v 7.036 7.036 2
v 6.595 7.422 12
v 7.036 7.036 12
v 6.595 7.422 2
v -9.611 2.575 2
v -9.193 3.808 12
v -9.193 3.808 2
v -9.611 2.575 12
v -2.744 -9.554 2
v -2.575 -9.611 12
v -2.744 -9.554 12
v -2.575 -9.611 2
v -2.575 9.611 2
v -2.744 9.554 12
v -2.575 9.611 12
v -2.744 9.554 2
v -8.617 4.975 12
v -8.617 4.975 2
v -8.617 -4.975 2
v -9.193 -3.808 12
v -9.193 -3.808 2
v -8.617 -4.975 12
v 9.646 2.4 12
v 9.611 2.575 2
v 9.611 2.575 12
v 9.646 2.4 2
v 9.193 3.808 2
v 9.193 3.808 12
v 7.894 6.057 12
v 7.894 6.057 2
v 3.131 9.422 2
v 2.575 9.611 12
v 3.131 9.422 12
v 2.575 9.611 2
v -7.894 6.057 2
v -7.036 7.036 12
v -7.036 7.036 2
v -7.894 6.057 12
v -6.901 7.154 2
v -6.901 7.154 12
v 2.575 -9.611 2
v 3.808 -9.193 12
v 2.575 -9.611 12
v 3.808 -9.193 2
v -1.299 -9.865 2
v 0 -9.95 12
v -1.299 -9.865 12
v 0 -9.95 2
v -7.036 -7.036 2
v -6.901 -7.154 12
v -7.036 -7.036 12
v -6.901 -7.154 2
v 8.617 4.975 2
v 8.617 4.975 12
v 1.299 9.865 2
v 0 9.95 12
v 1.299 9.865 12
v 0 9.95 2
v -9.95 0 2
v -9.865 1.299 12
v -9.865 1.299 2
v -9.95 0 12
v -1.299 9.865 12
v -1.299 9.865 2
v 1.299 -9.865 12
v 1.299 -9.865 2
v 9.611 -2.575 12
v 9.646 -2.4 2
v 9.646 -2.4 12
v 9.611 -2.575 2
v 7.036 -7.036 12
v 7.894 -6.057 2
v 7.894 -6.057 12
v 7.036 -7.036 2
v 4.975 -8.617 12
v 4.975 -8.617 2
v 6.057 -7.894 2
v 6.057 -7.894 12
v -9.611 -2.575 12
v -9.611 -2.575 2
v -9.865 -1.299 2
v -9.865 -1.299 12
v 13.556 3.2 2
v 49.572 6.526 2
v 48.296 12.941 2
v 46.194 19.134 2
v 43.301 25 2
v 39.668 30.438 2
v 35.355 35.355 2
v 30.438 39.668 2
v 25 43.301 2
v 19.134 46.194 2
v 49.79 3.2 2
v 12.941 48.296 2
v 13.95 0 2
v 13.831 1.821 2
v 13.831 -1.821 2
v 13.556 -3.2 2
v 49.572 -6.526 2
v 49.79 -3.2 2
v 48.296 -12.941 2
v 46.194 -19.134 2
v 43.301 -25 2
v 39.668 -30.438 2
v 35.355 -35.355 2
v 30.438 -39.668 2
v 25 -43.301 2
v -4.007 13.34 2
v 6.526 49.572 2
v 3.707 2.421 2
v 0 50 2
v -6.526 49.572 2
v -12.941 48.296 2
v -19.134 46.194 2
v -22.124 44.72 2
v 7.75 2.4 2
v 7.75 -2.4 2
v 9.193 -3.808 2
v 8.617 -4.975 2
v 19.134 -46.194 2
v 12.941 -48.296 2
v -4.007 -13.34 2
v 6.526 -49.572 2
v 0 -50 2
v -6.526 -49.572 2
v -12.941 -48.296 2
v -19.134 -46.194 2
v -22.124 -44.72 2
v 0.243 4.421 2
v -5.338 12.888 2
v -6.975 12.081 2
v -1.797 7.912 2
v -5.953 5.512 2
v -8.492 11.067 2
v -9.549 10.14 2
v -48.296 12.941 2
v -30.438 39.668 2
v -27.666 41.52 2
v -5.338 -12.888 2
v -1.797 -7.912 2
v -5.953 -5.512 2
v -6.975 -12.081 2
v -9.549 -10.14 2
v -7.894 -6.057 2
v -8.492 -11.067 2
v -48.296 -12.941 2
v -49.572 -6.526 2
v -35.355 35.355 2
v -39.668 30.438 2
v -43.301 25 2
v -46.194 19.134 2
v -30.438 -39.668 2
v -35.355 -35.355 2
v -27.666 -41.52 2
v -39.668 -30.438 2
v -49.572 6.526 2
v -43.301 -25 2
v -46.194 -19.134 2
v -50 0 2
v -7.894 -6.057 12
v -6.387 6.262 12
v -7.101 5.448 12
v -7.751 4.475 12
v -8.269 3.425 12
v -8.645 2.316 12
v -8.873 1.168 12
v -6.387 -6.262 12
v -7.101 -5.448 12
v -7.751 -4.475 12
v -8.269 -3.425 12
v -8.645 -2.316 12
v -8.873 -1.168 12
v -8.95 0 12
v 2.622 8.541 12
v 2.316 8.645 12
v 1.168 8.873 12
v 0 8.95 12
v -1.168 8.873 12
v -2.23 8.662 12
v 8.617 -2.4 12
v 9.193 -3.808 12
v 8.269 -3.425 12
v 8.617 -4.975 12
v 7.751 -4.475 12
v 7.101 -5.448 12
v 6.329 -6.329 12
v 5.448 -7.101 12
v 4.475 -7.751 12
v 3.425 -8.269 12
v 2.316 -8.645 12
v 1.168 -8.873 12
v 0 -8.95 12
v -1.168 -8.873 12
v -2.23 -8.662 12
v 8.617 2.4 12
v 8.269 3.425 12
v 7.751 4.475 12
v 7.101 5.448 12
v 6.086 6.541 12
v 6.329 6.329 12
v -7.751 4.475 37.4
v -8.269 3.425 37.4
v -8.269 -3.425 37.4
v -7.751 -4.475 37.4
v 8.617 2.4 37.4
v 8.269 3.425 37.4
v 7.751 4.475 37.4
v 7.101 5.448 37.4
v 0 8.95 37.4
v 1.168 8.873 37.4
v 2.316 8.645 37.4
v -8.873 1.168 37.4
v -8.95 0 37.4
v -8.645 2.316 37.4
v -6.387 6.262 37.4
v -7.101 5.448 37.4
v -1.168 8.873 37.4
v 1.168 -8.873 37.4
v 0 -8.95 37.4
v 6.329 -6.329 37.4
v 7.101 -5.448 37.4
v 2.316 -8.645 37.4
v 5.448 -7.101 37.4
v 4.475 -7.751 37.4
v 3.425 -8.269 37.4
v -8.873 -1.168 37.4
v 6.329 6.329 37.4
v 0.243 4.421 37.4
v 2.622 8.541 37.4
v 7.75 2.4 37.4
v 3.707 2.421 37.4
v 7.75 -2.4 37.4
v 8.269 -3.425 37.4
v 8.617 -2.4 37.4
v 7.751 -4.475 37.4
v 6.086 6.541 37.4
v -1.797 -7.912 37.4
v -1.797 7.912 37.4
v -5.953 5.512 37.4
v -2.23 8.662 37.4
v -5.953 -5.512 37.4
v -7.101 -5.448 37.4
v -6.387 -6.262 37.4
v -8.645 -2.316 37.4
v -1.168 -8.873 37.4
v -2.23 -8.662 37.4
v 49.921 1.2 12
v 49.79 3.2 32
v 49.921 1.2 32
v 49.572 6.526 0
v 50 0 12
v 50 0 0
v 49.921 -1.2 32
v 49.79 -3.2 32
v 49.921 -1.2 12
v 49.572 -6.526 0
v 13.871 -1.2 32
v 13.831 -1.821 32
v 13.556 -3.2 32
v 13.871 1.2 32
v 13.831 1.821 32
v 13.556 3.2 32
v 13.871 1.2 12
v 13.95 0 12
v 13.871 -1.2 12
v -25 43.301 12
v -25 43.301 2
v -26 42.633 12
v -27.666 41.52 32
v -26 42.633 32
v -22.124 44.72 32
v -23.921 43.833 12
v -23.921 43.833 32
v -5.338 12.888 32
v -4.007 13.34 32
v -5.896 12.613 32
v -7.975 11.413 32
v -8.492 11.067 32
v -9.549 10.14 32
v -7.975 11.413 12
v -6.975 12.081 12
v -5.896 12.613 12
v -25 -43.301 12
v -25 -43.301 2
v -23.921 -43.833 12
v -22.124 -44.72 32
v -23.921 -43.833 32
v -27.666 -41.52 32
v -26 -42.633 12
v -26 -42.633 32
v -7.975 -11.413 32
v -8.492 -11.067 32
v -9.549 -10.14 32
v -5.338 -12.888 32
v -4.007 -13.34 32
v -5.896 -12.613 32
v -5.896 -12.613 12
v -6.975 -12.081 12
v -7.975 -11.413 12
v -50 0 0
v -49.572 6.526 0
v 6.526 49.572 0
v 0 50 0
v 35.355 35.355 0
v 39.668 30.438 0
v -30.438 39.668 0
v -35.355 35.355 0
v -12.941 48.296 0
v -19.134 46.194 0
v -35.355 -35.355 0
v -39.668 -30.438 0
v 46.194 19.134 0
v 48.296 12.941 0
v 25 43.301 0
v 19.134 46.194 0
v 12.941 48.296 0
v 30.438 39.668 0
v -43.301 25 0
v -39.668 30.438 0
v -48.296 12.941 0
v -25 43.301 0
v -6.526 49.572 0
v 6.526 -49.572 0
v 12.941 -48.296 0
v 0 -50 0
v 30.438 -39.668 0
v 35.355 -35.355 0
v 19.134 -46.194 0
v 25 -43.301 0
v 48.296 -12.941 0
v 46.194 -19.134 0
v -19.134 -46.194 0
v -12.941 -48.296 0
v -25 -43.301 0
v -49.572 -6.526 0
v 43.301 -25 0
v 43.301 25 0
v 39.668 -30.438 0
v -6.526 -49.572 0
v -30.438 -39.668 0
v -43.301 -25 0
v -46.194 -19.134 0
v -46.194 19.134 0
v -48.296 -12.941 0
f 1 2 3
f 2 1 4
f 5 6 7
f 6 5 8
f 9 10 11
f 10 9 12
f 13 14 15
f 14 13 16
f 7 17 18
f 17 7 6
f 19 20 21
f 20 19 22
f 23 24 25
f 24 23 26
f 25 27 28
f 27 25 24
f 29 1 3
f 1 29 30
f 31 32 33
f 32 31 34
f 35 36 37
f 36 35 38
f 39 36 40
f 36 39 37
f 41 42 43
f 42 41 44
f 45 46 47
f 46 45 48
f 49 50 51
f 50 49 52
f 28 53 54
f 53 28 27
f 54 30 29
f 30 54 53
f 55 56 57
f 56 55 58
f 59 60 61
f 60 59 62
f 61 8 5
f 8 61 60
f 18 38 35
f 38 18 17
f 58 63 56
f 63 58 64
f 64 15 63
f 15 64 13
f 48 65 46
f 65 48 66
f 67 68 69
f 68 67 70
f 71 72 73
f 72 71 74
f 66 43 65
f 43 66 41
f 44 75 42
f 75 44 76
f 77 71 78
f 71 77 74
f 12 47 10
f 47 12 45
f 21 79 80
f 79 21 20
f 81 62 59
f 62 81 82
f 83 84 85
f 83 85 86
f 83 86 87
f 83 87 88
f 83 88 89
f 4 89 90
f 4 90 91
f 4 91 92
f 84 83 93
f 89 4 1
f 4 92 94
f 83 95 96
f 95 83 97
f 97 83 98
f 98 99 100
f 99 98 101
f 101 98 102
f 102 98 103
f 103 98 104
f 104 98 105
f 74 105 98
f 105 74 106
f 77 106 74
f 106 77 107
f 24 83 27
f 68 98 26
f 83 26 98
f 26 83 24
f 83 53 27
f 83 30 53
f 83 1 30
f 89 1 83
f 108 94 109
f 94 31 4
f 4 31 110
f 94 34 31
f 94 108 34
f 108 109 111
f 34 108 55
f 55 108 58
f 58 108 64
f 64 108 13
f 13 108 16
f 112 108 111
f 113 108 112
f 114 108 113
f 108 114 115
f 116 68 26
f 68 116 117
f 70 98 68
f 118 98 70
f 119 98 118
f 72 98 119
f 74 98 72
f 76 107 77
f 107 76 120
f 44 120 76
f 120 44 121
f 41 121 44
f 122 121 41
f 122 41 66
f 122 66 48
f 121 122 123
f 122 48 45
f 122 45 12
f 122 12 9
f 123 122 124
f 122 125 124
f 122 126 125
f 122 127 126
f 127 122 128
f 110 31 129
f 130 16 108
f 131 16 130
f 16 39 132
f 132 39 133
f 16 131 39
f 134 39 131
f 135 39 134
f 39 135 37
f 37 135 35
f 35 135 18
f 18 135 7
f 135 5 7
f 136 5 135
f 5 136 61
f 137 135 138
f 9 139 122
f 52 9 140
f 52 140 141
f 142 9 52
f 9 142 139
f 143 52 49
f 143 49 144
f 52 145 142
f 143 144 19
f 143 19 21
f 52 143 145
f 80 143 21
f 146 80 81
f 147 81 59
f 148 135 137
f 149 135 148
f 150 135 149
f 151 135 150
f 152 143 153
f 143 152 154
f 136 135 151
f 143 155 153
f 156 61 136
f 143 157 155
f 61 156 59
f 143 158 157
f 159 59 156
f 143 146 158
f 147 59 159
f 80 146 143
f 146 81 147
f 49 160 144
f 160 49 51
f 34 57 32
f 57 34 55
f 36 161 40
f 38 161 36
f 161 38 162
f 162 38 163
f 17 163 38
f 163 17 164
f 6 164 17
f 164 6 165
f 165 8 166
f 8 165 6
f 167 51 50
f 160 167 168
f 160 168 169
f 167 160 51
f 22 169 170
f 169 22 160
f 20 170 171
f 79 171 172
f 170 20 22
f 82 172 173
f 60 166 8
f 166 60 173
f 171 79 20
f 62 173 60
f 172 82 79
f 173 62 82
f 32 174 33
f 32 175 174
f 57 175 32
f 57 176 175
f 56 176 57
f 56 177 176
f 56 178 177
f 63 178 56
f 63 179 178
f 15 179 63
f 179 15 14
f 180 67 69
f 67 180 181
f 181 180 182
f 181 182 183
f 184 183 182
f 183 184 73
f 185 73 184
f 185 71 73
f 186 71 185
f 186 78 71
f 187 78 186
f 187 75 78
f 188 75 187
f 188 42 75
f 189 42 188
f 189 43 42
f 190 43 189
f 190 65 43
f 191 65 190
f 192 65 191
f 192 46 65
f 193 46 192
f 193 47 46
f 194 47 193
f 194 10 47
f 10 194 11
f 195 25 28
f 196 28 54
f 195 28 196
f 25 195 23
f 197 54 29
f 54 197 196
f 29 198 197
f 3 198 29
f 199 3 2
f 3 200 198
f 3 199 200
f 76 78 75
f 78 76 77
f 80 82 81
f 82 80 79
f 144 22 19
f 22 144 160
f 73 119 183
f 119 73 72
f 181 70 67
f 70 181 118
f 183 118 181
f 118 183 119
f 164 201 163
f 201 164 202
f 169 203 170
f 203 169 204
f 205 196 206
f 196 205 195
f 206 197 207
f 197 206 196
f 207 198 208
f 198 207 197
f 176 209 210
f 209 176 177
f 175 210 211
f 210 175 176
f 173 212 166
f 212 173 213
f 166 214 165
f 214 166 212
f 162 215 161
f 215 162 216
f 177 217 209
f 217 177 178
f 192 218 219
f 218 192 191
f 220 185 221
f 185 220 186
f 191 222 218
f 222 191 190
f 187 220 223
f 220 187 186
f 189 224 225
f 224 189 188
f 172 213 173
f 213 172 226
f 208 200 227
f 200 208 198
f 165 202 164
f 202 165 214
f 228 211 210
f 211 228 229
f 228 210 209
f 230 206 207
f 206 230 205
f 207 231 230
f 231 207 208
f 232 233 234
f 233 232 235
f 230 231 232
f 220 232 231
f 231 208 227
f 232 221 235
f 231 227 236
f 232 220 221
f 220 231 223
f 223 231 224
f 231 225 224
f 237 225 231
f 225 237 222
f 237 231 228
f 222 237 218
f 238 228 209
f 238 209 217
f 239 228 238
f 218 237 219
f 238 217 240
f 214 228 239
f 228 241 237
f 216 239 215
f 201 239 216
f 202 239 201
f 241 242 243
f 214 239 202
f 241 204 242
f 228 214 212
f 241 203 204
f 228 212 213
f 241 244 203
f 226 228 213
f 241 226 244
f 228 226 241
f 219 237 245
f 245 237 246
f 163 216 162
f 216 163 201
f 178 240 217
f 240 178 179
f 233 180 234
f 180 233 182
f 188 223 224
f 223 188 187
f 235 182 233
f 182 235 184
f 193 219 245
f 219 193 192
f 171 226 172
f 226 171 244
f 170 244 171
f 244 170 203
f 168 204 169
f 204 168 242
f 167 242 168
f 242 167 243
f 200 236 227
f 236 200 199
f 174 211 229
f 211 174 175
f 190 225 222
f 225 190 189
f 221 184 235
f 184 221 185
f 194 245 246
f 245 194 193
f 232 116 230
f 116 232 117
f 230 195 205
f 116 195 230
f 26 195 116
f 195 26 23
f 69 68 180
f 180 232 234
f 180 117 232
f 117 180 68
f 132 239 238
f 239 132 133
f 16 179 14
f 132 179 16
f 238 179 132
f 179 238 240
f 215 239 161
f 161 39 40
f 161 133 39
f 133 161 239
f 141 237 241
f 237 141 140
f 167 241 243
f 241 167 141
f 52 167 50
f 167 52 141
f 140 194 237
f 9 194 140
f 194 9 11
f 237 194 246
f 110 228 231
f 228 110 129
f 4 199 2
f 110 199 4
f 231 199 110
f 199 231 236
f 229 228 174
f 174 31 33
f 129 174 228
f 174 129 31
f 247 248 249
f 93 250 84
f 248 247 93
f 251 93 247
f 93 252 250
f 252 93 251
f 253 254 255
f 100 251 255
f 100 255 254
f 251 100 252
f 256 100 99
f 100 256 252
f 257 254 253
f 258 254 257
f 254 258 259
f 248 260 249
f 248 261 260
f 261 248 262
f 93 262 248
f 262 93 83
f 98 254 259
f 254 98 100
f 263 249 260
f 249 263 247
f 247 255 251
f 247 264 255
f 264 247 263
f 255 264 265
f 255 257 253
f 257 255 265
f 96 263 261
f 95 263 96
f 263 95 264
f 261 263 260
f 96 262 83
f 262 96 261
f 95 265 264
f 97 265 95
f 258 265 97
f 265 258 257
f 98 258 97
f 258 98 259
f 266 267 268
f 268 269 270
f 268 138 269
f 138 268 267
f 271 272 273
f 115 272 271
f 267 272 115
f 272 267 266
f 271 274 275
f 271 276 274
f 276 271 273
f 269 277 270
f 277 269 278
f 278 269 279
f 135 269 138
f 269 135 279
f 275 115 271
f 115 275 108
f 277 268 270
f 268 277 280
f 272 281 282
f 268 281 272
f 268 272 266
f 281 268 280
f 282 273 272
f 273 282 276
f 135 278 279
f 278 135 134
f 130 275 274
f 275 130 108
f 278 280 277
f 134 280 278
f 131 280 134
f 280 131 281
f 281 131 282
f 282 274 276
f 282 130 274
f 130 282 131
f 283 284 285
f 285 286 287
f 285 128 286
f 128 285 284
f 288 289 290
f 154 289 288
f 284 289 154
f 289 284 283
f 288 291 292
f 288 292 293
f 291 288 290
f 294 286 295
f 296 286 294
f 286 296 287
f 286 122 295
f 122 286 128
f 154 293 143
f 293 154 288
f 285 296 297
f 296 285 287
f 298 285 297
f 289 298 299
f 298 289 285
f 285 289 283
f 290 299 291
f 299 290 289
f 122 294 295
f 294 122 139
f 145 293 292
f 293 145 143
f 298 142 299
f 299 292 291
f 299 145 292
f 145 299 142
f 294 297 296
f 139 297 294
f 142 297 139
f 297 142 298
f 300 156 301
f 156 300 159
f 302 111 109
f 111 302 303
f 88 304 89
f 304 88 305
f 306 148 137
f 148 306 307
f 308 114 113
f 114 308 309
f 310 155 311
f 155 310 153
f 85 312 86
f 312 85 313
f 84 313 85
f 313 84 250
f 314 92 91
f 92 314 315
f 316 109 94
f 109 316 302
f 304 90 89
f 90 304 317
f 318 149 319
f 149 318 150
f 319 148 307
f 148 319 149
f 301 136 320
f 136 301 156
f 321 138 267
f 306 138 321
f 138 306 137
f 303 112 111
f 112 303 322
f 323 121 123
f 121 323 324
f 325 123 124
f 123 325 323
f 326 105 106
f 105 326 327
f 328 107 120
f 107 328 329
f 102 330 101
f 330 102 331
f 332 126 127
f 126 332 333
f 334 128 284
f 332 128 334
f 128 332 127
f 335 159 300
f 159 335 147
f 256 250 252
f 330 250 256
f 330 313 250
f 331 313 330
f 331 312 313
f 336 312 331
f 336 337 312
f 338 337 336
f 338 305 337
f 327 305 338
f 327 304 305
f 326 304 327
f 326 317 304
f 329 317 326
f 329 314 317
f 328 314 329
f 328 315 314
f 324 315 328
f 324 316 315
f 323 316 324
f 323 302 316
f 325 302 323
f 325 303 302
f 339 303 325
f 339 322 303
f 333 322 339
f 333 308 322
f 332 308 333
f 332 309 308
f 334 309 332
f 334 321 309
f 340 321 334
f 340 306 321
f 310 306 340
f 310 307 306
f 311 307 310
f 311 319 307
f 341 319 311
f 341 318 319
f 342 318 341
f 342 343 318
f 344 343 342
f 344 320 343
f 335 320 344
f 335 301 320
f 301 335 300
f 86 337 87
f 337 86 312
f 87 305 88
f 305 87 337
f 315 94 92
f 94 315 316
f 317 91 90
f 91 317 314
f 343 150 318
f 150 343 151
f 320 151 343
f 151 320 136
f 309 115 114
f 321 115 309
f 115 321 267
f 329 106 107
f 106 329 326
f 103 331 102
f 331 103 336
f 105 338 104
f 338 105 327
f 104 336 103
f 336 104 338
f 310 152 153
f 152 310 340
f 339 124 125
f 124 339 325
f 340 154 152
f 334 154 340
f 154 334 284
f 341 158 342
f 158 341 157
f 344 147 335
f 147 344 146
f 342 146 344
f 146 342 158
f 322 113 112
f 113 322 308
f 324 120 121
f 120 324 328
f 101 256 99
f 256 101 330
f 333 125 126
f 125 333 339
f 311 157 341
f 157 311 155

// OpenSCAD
// Copyright 2017 Arthur Davis (thingiverse.com/artdavis)
// This file is licensed under a Creative Commons Attribution 4.0
// International License.
// THE SOFTWARE IS PROVIDED "AS IS", WITHOUT WARRANTY OF ANY KIND, EXPRESS OR
// IMPLIED, INCLUDING BUT NOT LIMITED TO THE WARRANTIES OF MERCHANTABILITY,
// FITNESS FOR A PARTICULAR PURPOSE AND NONINFRINGEMENT. IN NO EVENT SHALL THE
// AUTHORS OR COPYRIGHT HOLDERS BE LIABLE FOR ANY CLAIM, DAMAGES OR OTHER
// LIABILITY, WHETHER IN AN ACTION OF CONTRACT, TORT OR OTHERWISE, ARISING
// FROM, OUT OF OR IN CONNECTION WITH THE SOFTWARE OR THE USE OR OTHER
// DEALINGS IN THE SOFTWARE.
//
// A customizable jig for aligning and gluing fins
// onto model rockets.

// Optimize view for Makerbot Customizer:
// preview[view:south east, tilt:side]

// Number of fins
nfins = 3; // [2:1:6]
// Diameter of the base stand
base_diam = 100; // [0:10:200]
// Wall feature thickness
wall_th = 2.0; // [0.2:0.2:6.0]
// Body tube inner diameter
tube_id = 17.9; // [10.0:0.1:50.0]
// Length of the body tube insert
insert_len = 25.4; // [10:0.2:60]
// Thickness at end of body tube insert to act as a stop
stop_th = 1.0; // [0.2:0.1:5]
// Length of the body tube stop
stop_len = 10; // [1:0.2:20]
// Slot width to fit thickness of rocket fins
slot_width = 2.4; // [0.2:0.1:10]
// Clearance between rocket body and fin alignment bosses
boss_clear = 4.0; // [0:1:20]
// How far below the end of the body tube the fins extend
slot_extend = 0; // [0:1:60]
// Height of fin alignment bosses
fbht = 30; // [10:1:100]
// Clearance for glue drips on the stop and insert
glue_clear = 1.2; // [0:0.2:3]
// Clearance width for accomodating an engine hook
hook_width = 4.0; // [0:0.2:10]
// Depth of the slot for accomodating an engine hook
hook_depth = 5.0; // [0:0.2:10]

/* [Hidden] */
// Special variables for facets/arcs
$fn = 48;
// Incremental offset to make good overlap for CSG operations
delta = 0.1;
// Thickness of fin alignment bosses
fbth = 2*wall_th + slot_width;
// Included angle between fins
fin_ang = 360 / nfins;
// Diameter of the "stop" cylinder
stop_diam = tube_id + 2*stop_th;
// The stop cylinder feature length needs to be at least
// as long as the slot extension. Choose the greater
// for the value to use as the actual feature height.
stop_len_1 = (slot_extend < stop_len) ? stop_len : slot_extend;

// Clearance geometry for stop and insert
module cleargeom() {
    clrth = slot_width + 2*glue_clear;
    cylht = wall_th + stop_len_1 + insert_len + delta;
    union() {
        for (i=[0:nfins-1]) {
            rotate(a = [0, 0, i * fin_ang]) {
                translate(v = [tube_id/2 - glue_clear, -clrth/2, 0]) {
                    // Clearance slot
                    cube(size = [base_diam/2, clrth, cylht]);
                }
            }
        }
        // Also include geometry that will make clearence for an
        // engine hook
        rotate(a = [0, 0, fin_ang/2]) {
            translate(v = [tube_id/2 - hook_depth, -hook_width/2, 0]) {
                // Clearance slot
                cube(size = [base_diam/2, hook_width, cylht]);
            }
        }
    }
}

// Fin boss
module finboss(ang=0) {
    cylht = wall_th + fbht + delta;
    slot_plane = wall_th + stop_len_1 - slot_extend;
    difference() {
        rotate(a = [0, 0, ang]) {
            // Cut out the fin slots
            difference() {
                // Trim fin slot boss to Base Diameter
                intersection() {
                    cylinder(h=cylht, d=base_diam);
                    translate(v = [0, -fbth/2, wall_th]) {
                        // Fin slot boss
                        cube(size = [base_diam/2, fbth, fbht]);
                    }
                }
                translate(v = [0, -slot_width/2, slot_plane]) {
                    // Fin slot
                    cube(size = [base_diam, slot_width, fbht + delta]);
                }
            }
        }
        translate(v=[0, 0, delta]){
            cylinder(h=cylht, d=stop_diam + 2*boss_clear);
        }
    }
}

// Create main base
module base() {
    union() {
        cylinder(h=wall_th, d=base_diam);
        translate(v=[0, 0, wall_th]){
            // Glue clerance slot cuts
            difference() {
                union() {
                    // Body tube stop cylinder
                    cylinder(h=stop_len_1, d=stop_diam);
                    translate(v=[0, 0, stop_len_1]){
                        // Body tube insert
                        cylinder(h=insert_len, d=tube_id);
                    }
                }
                // Glue clearence slots
                cleargeom();
            }
        }
        for (i=[0:nfins-1]) {
            finboss(i * fin_ang);
        }
    }
}

base();
